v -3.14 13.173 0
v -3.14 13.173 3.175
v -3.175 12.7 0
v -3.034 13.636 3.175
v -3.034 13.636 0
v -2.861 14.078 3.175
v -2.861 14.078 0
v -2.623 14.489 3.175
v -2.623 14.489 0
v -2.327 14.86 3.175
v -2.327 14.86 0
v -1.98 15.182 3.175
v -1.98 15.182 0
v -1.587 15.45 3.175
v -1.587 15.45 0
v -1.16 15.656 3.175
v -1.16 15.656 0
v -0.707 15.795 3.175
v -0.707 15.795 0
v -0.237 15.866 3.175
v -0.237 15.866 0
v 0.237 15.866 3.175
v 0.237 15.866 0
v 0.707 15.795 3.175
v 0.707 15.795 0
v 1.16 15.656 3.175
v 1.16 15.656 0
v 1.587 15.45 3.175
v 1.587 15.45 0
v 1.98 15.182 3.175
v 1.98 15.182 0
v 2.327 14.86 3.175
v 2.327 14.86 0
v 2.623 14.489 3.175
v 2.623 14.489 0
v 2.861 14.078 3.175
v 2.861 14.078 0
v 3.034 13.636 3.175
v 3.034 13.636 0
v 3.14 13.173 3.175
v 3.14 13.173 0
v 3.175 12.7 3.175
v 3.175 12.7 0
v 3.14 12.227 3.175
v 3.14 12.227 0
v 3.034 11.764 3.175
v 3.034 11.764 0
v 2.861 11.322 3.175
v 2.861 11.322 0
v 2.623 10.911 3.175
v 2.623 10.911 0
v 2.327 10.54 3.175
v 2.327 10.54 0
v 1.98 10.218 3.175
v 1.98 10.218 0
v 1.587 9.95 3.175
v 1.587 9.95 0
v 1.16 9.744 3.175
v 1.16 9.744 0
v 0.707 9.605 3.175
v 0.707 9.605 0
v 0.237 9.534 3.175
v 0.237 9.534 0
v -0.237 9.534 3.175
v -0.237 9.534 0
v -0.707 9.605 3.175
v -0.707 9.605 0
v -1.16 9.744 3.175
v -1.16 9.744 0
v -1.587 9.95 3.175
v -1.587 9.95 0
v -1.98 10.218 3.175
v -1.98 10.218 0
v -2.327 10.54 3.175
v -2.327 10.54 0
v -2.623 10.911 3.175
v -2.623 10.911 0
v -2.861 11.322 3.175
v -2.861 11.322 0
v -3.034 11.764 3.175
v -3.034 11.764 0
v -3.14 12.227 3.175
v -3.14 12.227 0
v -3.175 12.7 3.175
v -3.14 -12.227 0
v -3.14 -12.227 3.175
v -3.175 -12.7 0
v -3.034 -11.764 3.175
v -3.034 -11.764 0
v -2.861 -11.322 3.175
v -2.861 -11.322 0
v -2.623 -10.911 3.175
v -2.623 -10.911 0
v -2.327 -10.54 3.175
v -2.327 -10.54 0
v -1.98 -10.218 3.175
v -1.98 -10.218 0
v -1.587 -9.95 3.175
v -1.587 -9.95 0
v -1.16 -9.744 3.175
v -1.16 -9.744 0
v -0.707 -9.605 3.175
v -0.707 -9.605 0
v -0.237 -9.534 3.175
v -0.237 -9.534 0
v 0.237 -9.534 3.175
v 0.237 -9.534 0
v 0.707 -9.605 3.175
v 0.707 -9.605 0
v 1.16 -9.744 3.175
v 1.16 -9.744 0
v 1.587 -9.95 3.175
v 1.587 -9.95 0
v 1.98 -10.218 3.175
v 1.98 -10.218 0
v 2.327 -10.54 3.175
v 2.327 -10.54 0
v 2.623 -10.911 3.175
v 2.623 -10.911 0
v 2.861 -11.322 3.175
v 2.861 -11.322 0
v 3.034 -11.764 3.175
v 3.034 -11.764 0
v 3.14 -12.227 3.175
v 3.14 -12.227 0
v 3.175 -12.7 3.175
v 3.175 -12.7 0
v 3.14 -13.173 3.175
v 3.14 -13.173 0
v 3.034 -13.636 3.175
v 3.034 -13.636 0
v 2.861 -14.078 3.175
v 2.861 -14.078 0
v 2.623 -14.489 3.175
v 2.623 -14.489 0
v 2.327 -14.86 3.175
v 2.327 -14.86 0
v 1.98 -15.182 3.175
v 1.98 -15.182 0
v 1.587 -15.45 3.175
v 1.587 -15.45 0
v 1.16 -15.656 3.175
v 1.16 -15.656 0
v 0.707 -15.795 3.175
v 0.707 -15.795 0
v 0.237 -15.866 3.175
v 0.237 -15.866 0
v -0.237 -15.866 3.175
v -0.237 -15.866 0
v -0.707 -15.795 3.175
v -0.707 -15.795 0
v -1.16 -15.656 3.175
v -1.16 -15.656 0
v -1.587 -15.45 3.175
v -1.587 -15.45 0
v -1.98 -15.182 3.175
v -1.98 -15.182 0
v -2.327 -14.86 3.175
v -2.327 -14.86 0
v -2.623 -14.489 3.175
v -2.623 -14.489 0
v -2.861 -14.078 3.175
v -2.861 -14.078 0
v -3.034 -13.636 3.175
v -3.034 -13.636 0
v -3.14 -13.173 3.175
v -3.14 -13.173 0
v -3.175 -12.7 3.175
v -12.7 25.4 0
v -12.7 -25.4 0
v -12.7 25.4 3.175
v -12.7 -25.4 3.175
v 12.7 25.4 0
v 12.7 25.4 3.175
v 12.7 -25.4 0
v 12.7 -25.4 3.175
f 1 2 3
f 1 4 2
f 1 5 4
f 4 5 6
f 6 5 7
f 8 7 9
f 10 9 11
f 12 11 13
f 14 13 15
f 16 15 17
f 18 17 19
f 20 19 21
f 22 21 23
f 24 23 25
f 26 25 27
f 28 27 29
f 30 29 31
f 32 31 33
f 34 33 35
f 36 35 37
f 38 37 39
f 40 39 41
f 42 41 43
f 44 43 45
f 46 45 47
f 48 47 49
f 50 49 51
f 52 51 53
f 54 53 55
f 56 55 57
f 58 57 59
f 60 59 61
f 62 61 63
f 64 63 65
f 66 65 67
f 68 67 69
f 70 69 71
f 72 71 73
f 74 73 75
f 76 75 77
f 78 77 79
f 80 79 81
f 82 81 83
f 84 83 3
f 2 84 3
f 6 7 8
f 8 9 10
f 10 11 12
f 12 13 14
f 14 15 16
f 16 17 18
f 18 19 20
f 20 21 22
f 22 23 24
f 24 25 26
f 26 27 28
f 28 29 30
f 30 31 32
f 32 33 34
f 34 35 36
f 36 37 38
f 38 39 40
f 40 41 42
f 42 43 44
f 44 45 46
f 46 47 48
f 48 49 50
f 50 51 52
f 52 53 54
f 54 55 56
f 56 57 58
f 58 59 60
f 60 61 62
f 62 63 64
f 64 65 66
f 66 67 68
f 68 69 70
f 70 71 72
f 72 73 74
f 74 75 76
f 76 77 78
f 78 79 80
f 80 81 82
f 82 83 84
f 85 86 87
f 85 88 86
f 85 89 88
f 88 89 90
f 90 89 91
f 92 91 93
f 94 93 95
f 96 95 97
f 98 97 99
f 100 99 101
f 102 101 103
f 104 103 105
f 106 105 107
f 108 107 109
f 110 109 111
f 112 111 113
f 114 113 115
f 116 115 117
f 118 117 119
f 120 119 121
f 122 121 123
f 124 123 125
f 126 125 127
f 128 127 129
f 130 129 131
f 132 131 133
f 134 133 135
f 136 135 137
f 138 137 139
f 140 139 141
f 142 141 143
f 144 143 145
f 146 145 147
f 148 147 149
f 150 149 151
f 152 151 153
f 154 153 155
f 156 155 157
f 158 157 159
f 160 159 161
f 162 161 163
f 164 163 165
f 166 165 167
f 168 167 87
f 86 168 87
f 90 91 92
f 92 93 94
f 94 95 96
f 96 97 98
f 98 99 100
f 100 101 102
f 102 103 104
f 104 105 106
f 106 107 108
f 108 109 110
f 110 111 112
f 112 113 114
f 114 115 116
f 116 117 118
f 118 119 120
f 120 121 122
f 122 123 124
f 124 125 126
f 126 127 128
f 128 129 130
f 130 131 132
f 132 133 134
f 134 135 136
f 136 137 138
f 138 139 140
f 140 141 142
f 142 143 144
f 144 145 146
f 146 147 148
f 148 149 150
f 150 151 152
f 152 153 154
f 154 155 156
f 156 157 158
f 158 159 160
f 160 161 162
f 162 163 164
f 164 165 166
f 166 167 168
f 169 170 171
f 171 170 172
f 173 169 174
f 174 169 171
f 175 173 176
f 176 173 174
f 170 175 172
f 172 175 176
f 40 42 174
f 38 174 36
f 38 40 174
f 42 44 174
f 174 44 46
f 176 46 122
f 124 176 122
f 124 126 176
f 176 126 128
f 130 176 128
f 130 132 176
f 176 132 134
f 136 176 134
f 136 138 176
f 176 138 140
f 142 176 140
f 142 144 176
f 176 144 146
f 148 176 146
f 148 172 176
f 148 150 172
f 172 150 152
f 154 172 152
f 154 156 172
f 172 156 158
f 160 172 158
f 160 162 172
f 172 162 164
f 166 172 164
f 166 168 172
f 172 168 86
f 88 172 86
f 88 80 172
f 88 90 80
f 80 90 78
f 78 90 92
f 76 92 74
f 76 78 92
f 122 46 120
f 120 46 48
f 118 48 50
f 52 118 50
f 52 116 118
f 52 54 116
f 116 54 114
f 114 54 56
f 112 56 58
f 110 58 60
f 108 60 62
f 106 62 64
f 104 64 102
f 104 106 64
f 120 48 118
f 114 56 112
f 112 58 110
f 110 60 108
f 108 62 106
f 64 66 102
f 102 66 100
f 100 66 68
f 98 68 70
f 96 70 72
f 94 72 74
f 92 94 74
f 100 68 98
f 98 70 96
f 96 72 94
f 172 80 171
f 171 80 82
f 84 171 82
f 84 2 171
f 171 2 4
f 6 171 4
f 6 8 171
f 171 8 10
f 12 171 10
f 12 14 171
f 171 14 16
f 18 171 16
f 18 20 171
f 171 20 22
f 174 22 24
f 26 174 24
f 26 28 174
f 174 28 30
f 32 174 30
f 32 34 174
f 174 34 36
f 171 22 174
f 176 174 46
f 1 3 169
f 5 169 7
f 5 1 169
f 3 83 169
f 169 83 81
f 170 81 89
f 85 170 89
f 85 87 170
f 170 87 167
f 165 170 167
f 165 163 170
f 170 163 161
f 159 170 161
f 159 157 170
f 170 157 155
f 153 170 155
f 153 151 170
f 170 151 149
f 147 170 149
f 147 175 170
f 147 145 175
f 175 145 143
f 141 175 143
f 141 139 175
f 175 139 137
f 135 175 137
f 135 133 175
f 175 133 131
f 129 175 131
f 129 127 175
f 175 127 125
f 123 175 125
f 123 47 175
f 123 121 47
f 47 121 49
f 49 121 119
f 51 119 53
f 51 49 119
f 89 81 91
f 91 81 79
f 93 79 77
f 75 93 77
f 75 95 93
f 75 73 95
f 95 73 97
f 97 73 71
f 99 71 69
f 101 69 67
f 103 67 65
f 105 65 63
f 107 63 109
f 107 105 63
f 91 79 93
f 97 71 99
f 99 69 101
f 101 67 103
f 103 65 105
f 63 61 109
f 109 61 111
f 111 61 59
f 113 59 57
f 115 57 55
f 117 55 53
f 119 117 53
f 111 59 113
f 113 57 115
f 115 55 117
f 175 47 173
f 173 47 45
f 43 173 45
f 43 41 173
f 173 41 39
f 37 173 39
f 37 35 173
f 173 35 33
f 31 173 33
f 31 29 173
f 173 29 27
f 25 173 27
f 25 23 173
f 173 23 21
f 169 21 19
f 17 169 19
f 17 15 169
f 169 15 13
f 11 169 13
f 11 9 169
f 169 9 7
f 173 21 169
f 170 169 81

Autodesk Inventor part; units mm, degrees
ref_plane "YZ Plane" through (0, 0, 0) normal (1, 0, 0) x (0, 1, 0)
ref_plane "XZ Plane" through (0, 0, 0) normal (0, 1, 0) x (-1, 0, 0)
ref_plane "XY Plane" through (0, 0, 0) normal (0, 0, 1) x (1, 0, 0)
sketch "Sketch1" plane through (0, 0, 0) normal (0, 0, 1) x (1, 0, 0)
  line L0 (-12.7, -25.4) -> (12.7, -25.4)
  line L1 (12.7, -25.4) -> (12.7, 25.4)
  line L2 (12.7, 25.4) -> (-12.7, 25.4)
  line L3 (-12.7, 25.4) -> (-12.7, -25.4)
  line L4 (-12.7, -25.4) -> (12.7, 25.4) construction
  line L5 (12.7, -25.4) -> (-12.7, 25.4) construction
  point P0 (0, 0)
  dimension "d0" = 25.4
  dimension "d1" = 50.8
extrude "Extrusion1" add sketch "Sketch1" along normal blind 3.175
sketch "Sketch2" plane through (0, 0, 3.175) normal (0, 0, 1) x (1, 0, 0)
  line L0 (-12.7, -25.4) -> (12.7, -25.4) projected
  line L1 (12.7, 25.4) -> (-12.7, 25.4) projected
  line L2 (-12.7, 25.4) -> (-12.7, -25.4) projected
  line L3 (0, 25.4) -> (0, 12.7)
  line L4 (0, -25.4) -> (0, -12.7)
  point P0 (0, 0)
  dimension "d4" = 12.7
  dimension "d5" = 12.7
hole "Hole1" at (0, 12.7, 3.175) at (0, -12.7, 3.175) direction (0, 0, -1) diameter 6.35 end through all
properties part number "2 hole plate"
